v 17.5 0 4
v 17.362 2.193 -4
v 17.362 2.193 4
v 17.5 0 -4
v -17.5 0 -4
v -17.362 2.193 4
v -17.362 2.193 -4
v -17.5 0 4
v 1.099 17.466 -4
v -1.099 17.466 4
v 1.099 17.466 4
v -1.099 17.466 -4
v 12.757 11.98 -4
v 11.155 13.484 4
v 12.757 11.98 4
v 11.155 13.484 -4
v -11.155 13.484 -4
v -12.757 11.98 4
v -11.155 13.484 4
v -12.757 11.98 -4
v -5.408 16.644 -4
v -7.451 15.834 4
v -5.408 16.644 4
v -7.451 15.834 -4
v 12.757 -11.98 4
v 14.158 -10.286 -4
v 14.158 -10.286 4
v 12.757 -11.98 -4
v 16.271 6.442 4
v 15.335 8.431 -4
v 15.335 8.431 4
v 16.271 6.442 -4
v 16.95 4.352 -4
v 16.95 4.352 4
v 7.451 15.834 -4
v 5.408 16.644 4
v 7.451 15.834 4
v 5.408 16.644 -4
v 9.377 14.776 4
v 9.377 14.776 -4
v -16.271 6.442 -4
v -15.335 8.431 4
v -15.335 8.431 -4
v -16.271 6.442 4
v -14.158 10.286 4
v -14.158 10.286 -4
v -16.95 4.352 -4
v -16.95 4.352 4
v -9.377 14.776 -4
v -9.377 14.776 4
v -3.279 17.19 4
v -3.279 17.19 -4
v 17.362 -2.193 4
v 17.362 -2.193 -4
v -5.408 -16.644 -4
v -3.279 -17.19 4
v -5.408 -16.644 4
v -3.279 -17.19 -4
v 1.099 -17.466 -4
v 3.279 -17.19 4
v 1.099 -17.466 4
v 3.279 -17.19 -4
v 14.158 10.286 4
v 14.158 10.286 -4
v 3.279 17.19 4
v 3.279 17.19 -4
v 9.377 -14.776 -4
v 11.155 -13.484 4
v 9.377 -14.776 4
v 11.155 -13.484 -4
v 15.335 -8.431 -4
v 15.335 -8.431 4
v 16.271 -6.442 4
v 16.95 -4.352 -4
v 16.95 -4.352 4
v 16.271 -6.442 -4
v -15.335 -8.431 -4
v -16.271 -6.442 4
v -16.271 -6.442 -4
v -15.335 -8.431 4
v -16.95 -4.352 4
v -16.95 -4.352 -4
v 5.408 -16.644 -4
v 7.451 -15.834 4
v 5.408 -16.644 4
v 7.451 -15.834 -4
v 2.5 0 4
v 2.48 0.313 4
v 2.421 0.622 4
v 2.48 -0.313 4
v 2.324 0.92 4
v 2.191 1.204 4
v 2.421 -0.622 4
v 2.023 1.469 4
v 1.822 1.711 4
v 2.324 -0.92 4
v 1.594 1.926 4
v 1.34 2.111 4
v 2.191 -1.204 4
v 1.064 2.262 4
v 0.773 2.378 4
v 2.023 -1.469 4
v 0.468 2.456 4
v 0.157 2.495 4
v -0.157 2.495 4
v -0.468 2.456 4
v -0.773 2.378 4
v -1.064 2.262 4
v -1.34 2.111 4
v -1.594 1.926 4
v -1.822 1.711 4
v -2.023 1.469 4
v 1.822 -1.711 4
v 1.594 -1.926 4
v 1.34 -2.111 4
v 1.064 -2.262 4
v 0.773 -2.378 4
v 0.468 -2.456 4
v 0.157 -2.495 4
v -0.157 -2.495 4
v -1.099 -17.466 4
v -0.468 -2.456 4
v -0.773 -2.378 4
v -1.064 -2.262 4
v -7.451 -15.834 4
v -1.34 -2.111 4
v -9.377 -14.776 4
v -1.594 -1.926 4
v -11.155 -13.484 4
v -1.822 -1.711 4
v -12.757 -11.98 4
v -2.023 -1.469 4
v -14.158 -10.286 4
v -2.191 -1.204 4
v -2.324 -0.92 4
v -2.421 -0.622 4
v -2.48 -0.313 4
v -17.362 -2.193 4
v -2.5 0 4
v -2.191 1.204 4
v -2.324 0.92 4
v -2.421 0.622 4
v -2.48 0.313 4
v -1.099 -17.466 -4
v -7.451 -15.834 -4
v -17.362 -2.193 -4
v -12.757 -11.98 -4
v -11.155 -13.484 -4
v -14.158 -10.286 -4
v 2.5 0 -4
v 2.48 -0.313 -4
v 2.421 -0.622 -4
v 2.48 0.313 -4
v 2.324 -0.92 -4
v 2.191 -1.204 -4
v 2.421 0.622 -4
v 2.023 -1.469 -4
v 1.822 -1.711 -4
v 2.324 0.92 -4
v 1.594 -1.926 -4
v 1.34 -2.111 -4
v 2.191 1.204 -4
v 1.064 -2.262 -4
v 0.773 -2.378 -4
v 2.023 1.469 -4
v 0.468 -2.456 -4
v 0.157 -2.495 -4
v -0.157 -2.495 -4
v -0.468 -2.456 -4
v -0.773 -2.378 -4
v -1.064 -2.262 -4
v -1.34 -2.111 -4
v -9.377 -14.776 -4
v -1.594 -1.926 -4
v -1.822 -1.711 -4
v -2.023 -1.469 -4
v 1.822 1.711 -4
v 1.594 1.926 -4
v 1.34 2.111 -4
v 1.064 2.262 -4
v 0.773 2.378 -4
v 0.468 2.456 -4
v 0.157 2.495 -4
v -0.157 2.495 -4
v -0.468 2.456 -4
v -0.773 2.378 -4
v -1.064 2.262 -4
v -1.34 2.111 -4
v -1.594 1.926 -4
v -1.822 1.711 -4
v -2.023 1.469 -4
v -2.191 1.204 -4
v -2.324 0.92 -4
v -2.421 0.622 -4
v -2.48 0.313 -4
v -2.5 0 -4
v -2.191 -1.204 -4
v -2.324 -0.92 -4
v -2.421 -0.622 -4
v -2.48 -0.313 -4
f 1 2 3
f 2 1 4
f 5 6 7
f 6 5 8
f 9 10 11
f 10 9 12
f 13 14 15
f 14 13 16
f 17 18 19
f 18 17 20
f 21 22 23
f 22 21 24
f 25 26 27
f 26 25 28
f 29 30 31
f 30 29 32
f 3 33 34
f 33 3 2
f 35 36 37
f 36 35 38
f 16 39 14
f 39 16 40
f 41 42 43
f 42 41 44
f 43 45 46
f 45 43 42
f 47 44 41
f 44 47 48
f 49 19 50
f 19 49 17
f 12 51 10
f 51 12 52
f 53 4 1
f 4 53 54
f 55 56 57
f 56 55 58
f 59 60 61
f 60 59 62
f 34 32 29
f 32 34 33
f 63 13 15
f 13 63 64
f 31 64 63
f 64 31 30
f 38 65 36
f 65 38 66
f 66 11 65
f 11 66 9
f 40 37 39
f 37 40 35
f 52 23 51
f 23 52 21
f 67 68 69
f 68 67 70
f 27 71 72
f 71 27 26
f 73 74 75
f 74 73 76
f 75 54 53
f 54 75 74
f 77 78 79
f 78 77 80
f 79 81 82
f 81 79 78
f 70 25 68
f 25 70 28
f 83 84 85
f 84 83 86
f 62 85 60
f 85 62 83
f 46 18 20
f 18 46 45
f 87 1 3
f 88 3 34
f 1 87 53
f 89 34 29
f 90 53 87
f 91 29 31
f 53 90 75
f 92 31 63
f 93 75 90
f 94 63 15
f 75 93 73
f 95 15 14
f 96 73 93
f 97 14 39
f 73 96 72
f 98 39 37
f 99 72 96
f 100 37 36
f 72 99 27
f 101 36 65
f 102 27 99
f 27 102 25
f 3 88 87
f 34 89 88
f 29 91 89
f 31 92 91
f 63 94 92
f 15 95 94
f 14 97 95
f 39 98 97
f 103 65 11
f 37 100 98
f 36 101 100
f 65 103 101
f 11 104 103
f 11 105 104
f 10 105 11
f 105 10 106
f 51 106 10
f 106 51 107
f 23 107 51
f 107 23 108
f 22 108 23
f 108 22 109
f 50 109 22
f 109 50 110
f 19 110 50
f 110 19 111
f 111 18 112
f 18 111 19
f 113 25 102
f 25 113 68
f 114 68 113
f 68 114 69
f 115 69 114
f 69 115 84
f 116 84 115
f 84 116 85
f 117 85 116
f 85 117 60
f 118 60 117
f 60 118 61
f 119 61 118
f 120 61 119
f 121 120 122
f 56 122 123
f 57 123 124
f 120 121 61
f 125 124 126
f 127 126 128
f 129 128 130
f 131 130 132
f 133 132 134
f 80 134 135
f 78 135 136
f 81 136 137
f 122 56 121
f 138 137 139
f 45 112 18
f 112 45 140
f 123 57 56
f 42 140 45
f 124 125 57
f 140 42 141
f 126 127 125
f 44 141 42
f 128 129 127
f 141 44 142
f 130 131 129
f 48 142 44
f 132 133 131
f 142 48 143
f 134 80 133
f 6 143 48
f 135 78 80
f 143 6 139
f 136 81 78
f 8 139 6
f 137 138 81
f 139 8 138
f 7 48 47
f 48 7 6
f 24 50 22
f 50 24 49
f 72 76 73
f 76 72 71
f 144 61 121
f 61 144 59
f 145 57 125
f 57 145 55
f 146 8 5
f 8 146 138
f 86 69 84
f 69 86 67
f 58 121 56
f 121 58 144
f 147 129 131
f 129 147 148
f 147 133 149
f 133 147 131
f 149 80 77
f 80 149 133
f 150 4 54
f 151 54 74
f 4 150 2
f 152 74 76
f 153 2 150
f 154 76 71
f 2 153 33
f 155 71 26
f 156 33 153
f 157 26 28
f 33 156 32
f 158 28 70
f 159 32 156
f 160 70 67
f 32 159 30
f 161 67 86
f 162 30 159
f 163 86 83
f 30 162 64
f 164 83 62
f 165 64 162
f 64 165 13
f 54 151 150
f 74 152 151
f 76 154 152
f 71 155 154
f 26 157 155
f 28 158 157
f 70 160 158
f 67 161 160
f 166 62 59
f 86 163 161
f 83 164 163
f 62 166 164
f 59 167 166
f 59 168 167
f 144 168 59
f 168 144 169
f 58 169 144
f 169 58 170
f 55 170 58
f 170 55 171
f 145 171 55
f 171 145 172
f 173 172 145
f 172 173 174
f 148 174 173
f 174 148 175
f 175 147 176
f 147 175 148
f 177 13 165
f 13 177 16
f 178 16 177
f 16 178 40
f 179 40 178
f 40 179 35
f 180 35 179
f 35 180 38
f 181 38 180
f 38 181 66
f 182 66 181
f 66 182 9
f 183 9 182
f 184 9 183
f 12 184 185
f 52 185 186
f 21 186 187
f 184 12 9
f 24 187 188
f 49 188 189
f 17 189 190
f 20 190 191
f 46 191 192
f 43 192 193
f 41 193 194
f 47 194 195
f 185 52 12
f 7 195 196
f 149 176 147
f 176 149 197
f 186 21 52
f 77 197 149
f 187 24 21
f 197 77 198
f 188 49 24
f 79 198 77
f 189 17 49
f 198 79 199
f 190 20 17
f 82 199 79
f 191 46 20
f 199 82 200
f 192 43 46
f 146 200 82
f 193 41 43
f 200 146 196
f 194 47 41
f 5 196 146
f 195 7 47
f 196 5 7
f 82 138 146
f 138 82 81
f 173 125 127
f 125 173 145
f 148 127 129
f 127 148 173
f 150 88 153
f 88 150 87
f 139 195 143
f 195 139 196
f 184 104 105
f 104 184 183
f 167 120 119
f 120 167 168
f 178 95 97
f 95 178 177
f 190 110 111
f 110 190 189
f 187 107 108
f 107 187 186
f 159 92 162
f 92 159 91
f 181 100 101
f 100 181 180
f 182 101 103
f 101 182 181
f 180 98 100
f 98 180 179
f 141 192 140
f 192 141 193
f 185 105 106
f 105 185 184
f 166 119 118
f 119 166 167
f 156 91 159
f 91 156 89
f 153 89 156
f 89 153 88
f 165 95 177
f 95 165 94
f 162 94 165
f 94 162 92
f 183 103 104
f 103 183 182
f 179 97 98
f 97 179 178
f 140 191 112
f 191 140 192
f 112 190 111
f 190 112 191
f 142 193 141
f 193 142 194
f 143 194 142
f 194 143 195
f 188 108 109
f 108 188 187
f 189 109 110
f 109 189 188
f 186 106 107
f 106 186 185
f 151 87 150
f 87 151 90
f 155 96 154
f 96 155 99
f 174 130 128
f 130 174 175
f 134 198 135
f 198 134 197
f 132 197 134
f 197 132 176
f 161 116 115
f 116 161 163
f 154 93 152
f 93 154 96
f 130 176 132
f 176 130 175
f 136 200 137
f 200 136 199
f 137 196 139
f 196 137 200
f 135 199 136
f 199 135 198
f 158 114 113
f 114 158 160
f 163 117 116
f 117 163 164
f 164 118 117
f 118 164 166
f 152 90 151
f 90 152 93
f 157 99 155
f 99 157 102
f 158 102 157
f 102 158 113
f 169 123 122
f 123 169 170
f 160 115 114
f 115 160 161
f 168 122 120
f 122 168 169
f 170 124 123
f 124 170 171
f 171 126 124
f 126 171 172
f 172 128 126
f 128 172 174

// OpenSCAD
$fn = 50;


difference() {
	union() {
		translate(v = [0, 0, -4.0000000000]) {
			cylinder(h = 8, r = 17.5000000000);
		}
	}
	union() {
		translate(v = [0, 0, -100.0000000000]) {
			cylinder(h = 200, r = 2.5000000000);
		}
	}
}
